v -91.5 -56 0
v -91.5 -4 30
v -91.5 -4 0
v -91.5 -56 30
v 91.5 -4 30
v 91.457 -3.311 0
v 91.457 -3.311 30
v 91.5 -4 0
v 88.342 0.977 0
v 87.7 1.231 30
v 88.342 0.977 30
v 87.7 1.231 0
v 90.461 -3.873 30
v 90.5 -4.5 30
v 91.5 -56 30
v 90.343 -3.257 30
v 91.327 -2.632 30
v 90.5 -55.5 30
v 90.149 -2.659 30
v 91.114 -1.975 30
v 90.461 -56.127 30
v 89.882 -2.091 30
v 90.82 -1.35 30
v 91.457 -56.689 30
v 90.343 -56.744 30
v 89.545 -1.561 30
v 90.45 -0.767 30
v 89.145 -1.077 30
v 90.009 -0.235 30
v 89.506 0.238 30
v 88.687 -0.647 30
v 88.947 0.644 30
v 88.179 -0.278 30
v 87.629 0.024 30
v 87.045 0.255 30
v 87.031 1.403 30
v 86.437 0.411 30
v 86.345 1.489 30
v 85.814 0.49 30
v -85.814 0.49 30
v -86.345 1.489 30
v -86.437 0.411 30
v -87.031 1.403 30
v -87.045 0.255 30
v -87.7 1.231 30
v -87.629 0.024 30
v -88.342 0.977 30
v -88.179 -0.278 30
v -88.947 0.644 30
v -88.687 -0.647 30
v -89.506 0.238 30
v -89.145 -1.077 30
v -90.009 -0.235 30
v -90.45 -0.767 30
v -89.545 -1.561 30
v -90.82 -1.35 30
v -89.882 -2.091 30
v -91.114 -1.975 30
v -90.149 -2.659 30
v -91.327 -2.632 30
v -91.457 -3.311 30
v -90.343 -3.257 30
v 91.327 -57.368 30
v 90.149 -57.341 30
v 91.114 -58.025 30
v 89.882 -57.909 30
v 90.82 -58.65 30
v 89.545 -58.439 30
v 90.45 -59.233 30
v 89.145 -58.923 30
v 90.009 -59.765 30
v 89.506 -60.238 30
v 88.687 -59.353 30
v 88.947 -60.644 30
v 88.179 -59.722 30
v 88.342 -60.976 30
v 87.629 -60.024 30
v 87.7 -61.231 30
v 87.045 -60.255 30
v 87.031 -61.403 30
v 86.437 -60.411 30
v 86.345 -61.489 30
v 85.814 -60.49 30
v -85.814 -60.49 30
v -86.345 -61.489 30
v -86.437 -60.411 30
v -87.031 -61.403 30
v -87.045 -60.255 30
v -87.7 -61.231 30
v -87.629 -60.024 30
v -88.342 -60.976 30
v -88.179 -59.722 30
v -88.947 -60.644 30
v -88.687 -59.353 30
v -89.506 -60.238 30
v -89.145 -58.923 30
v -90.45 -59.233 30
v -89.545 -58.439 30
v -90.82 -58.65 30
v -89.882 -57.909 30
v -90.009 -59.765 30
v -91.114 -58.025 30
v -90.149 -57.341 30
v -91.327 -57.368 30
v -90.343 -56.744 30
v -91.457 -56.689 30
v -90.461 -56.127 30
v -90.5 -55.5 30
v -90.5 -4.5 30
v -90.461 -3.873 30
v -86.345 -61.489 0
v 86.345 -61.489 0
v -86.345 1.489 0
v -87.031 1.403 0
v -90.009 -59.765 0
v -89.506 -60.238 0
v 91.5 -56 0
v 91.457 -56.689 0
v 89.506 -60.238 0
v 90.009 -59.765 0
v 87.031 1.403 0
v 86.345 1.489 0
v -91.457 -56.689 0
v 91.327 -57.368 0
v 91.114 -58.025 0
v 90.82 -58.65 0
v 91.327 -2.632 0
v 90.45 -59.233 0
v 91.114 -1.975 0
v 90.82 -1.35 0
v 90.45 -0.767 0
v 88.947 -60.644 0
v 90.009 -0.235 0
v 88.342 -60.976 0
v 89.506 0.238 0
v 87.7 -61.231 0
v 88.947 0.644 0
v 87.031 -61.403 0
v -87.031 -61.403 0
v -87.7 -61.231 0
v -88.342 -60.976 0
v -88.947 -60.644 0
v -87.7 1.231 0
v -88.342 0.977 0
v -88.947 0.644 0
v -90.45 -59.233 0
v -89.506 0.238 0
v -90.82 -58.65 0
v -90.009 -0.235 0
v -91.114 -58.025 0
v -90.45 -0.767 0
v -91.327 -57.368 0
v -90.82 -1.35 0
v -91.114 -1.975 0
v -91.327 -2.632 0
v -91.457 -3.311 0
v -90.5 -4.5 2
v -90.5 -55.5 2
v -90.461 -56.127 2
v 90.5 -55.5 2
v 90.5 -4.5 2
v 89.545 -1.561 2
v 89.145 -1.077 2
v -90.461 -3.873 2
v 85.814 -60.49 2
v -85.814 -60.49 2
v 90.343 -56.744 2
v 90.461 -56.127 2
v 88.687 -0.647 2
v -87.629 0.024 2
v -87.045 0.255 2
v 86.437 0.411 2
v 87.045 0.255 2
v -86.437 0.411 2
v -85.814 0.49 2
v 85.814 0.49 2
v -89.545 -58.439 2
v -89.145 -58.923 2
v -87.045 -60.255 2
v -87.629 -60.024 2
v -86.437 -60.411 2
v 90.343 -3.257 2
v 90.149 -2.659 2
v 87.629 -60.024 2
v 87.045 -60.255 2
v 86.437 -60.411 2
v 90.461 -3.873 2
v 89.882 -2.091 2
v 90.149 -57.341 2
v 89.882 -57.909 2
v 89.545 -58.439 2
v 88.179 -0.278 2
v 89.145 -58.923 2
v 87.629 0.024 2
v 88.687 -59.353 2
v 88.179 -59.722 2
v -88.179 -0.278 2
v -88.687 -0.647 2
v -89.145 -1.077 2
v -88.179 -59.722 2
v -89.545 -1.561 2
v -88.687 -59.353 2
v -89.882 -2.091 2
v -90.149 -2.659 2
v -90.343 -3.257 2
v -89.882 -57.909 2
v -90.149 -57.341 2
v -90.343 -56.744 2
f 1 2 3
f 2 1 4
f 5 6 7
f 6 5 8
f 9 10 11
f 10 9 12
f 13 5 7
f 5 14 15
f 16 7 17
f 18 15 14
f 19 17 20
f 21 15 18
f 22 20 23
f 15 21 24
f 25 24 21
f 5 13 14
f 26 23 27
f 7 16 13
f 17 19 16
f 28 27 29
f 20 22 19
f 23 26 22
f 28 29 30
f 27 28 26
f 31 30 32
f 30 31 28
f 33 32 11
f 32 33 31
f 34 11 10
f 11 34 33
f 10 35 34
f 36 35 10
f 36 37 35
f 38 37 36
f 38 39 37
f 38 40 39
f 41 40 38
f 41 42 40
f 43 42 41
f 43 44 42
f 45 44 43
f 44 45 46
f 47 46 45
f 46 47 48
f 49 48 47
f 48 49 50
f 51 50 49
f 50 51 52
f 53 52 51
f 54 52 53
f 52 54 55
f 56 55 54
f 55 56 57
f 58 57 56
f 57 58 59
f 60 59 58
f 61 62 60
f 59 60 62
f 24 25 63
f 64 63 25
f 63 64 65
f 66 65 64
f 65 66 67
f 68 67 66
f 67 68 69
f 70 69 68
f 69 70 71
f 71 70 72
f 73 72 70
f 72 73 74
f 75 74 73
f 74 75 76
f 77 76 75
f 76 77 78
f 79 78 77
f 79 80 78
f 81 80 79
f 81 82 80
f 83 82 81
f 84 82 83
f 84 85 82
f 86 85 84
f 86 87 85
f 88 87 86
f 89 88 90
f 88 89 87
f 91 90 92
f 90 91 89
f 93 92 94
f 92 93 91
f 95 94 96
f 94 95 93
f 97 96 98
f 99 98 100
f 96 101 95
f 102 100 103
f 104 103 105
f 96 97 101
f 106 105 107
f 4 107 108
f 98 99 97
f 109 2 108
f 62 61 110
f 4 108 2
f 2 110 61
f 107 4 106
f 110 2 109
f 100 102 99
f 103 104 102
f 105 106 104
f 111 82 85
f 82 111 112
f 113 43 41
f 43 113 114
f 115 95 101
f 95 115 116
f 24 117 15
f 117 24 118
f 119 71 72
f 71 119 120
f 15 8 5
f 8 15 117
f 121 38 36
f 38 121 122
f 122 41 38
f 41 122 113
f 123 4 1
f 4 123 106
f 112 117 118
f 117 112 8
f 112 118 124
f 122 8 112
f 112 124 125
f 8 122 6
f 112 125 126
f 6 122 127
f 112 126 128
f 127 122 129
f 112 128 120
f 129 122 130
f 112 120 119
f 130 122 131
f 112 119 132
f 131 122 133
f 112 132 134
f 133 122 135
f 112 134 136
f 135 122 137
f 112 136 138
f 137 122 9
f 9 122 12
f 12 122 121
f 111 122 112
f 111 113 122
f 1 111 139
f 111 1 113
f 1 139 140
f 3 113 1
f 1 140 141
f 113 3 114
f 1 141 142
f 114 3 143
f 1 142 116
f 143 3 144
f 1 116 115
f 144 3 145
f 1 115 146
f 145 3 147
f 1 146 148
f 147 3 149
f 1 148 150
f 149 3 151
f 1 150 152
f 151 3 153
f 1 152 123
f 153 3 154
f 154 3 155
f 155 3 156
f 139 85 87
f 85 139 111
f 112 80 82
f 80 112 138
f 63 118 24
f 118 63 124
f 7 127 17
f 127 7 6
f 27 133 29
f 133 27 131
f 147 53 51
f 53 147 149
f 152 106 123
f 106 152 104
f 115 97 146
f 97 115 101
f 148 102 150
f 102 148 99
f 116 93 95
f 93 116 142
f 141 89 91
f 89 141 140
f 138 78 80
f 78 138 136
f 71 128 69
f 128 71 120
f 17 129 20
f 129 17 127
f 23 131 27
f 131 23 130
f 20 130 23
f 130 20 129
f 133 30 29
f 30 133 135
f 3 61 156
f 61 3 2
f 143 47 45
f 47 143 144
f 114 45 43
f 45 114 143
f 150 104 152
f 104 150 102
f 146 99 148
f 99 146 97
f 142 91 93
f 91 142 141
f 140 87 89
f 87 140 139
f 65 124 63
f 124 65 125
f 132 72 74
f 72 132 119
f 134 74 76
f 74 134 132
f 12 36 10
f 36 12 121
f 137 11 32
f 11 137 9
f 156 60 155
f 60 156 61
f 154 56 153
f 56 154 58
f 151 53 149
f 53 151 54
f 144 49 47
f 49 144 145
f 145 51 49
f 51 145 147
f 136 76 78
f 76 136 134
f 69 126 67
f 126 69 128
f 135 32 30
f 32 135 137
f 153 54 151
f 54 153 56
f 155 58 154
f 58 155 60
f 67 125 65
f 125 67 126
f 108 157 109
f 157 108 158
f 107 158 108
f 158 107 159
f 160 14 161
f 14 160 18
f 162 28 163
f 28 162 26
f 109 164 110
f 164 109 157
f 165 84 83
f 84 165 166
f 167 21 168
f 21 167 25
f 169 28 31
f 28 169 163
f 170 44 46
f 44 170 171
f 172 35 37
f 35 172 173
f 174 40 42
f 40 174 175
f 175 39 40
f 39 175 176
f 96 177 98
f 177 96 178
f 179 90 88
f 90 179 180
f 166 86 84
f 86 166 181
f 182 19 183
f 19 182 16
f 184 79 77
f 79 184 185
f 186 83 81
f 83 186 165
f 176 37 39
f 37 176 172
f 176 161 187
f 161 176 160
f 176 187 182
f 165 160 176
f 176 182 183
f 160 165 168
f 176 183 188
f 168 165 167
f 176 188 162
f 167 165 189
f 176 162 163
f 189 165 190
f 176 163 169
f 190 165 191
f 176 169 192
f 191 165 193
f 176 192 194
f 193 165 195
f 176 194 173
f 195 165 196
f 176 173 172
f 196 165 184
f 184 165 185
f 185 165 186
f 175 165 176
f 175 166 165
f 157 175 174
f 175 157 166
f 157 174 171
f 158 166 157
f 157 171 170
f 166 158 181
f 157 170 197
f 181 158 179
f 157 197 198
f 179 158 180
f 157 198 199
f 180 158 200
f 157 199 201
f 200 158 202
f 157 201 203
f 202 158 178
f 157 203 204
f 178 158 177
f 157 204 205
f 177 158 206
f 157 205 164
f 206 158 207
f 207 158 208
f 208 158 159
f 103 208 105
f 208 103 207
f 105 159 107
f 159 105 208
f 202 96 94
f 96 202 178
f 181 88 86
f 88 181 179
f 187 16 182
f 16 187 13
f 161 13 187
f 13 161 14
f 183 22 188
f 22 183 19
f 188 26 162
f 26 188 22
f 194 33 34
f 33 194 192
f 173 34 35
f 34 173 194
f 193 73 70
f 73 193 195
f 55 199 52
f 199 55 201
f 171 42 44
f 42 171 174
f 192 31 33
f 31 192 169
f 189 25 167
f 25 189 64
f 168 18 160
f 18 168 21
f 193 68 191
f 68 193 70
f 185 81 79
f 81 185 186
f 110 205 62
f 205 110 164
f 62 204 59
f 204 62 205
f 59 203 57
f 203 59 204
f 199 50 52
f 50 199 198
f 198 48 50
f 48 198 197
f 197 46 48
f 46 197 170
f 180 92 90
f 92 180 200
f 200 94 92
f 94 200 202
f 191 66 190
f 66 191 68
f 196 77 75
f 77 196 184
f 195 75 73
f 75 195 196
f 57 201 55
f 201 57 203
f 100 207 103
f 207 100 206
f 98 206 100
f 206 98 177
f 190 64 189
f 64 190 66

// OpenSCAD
$fn = 50;


difference() {
	union() {
		translate(v = [0, -30.0000000000, 0]) {
			hull() {
				translate(v = [-86.0000000000, 26.0000000000, 0]) {
					cylinder(h = 30, r = 5.5000000000);
				}
				translate(v = [86.0000000000, 26.0000000000, 0]) {
					cylinder(h = 30, r = 5.5000000000);
				}
				translate(v = [-86.0000000000, -26.0000000000, 0]) {
					cylinder(h = 30, r = 5.5000000000);
				}
				translate(v = [86.0000000000, -26.0000000000, 0]) {
					cylinder(h = 30, r = 5.5000000000);
				}
			}
		}
	}
	union() {
		translate(v = [0, -30.0000000000, 2]) {
			hull() {
				translate(v = [-85.5000000000, 25.5000000000, 0]) {
					cylinder(h = 60, r = 5);
				}
				translate(v = [85.5000000000, 25.5000000000, 0]) {
					cylinder(h = 60, r = 5);
				}
				translate(v = [-85.5000000000, -25.5000000000, 0]) {
					cylinder(h = 60, r = 5);
				}
				translate(v = [85.5000000000, -25.5000000000, 0]) {
					cylinder(h = 60, r = 5);
				}
			}
		}
	}
}
